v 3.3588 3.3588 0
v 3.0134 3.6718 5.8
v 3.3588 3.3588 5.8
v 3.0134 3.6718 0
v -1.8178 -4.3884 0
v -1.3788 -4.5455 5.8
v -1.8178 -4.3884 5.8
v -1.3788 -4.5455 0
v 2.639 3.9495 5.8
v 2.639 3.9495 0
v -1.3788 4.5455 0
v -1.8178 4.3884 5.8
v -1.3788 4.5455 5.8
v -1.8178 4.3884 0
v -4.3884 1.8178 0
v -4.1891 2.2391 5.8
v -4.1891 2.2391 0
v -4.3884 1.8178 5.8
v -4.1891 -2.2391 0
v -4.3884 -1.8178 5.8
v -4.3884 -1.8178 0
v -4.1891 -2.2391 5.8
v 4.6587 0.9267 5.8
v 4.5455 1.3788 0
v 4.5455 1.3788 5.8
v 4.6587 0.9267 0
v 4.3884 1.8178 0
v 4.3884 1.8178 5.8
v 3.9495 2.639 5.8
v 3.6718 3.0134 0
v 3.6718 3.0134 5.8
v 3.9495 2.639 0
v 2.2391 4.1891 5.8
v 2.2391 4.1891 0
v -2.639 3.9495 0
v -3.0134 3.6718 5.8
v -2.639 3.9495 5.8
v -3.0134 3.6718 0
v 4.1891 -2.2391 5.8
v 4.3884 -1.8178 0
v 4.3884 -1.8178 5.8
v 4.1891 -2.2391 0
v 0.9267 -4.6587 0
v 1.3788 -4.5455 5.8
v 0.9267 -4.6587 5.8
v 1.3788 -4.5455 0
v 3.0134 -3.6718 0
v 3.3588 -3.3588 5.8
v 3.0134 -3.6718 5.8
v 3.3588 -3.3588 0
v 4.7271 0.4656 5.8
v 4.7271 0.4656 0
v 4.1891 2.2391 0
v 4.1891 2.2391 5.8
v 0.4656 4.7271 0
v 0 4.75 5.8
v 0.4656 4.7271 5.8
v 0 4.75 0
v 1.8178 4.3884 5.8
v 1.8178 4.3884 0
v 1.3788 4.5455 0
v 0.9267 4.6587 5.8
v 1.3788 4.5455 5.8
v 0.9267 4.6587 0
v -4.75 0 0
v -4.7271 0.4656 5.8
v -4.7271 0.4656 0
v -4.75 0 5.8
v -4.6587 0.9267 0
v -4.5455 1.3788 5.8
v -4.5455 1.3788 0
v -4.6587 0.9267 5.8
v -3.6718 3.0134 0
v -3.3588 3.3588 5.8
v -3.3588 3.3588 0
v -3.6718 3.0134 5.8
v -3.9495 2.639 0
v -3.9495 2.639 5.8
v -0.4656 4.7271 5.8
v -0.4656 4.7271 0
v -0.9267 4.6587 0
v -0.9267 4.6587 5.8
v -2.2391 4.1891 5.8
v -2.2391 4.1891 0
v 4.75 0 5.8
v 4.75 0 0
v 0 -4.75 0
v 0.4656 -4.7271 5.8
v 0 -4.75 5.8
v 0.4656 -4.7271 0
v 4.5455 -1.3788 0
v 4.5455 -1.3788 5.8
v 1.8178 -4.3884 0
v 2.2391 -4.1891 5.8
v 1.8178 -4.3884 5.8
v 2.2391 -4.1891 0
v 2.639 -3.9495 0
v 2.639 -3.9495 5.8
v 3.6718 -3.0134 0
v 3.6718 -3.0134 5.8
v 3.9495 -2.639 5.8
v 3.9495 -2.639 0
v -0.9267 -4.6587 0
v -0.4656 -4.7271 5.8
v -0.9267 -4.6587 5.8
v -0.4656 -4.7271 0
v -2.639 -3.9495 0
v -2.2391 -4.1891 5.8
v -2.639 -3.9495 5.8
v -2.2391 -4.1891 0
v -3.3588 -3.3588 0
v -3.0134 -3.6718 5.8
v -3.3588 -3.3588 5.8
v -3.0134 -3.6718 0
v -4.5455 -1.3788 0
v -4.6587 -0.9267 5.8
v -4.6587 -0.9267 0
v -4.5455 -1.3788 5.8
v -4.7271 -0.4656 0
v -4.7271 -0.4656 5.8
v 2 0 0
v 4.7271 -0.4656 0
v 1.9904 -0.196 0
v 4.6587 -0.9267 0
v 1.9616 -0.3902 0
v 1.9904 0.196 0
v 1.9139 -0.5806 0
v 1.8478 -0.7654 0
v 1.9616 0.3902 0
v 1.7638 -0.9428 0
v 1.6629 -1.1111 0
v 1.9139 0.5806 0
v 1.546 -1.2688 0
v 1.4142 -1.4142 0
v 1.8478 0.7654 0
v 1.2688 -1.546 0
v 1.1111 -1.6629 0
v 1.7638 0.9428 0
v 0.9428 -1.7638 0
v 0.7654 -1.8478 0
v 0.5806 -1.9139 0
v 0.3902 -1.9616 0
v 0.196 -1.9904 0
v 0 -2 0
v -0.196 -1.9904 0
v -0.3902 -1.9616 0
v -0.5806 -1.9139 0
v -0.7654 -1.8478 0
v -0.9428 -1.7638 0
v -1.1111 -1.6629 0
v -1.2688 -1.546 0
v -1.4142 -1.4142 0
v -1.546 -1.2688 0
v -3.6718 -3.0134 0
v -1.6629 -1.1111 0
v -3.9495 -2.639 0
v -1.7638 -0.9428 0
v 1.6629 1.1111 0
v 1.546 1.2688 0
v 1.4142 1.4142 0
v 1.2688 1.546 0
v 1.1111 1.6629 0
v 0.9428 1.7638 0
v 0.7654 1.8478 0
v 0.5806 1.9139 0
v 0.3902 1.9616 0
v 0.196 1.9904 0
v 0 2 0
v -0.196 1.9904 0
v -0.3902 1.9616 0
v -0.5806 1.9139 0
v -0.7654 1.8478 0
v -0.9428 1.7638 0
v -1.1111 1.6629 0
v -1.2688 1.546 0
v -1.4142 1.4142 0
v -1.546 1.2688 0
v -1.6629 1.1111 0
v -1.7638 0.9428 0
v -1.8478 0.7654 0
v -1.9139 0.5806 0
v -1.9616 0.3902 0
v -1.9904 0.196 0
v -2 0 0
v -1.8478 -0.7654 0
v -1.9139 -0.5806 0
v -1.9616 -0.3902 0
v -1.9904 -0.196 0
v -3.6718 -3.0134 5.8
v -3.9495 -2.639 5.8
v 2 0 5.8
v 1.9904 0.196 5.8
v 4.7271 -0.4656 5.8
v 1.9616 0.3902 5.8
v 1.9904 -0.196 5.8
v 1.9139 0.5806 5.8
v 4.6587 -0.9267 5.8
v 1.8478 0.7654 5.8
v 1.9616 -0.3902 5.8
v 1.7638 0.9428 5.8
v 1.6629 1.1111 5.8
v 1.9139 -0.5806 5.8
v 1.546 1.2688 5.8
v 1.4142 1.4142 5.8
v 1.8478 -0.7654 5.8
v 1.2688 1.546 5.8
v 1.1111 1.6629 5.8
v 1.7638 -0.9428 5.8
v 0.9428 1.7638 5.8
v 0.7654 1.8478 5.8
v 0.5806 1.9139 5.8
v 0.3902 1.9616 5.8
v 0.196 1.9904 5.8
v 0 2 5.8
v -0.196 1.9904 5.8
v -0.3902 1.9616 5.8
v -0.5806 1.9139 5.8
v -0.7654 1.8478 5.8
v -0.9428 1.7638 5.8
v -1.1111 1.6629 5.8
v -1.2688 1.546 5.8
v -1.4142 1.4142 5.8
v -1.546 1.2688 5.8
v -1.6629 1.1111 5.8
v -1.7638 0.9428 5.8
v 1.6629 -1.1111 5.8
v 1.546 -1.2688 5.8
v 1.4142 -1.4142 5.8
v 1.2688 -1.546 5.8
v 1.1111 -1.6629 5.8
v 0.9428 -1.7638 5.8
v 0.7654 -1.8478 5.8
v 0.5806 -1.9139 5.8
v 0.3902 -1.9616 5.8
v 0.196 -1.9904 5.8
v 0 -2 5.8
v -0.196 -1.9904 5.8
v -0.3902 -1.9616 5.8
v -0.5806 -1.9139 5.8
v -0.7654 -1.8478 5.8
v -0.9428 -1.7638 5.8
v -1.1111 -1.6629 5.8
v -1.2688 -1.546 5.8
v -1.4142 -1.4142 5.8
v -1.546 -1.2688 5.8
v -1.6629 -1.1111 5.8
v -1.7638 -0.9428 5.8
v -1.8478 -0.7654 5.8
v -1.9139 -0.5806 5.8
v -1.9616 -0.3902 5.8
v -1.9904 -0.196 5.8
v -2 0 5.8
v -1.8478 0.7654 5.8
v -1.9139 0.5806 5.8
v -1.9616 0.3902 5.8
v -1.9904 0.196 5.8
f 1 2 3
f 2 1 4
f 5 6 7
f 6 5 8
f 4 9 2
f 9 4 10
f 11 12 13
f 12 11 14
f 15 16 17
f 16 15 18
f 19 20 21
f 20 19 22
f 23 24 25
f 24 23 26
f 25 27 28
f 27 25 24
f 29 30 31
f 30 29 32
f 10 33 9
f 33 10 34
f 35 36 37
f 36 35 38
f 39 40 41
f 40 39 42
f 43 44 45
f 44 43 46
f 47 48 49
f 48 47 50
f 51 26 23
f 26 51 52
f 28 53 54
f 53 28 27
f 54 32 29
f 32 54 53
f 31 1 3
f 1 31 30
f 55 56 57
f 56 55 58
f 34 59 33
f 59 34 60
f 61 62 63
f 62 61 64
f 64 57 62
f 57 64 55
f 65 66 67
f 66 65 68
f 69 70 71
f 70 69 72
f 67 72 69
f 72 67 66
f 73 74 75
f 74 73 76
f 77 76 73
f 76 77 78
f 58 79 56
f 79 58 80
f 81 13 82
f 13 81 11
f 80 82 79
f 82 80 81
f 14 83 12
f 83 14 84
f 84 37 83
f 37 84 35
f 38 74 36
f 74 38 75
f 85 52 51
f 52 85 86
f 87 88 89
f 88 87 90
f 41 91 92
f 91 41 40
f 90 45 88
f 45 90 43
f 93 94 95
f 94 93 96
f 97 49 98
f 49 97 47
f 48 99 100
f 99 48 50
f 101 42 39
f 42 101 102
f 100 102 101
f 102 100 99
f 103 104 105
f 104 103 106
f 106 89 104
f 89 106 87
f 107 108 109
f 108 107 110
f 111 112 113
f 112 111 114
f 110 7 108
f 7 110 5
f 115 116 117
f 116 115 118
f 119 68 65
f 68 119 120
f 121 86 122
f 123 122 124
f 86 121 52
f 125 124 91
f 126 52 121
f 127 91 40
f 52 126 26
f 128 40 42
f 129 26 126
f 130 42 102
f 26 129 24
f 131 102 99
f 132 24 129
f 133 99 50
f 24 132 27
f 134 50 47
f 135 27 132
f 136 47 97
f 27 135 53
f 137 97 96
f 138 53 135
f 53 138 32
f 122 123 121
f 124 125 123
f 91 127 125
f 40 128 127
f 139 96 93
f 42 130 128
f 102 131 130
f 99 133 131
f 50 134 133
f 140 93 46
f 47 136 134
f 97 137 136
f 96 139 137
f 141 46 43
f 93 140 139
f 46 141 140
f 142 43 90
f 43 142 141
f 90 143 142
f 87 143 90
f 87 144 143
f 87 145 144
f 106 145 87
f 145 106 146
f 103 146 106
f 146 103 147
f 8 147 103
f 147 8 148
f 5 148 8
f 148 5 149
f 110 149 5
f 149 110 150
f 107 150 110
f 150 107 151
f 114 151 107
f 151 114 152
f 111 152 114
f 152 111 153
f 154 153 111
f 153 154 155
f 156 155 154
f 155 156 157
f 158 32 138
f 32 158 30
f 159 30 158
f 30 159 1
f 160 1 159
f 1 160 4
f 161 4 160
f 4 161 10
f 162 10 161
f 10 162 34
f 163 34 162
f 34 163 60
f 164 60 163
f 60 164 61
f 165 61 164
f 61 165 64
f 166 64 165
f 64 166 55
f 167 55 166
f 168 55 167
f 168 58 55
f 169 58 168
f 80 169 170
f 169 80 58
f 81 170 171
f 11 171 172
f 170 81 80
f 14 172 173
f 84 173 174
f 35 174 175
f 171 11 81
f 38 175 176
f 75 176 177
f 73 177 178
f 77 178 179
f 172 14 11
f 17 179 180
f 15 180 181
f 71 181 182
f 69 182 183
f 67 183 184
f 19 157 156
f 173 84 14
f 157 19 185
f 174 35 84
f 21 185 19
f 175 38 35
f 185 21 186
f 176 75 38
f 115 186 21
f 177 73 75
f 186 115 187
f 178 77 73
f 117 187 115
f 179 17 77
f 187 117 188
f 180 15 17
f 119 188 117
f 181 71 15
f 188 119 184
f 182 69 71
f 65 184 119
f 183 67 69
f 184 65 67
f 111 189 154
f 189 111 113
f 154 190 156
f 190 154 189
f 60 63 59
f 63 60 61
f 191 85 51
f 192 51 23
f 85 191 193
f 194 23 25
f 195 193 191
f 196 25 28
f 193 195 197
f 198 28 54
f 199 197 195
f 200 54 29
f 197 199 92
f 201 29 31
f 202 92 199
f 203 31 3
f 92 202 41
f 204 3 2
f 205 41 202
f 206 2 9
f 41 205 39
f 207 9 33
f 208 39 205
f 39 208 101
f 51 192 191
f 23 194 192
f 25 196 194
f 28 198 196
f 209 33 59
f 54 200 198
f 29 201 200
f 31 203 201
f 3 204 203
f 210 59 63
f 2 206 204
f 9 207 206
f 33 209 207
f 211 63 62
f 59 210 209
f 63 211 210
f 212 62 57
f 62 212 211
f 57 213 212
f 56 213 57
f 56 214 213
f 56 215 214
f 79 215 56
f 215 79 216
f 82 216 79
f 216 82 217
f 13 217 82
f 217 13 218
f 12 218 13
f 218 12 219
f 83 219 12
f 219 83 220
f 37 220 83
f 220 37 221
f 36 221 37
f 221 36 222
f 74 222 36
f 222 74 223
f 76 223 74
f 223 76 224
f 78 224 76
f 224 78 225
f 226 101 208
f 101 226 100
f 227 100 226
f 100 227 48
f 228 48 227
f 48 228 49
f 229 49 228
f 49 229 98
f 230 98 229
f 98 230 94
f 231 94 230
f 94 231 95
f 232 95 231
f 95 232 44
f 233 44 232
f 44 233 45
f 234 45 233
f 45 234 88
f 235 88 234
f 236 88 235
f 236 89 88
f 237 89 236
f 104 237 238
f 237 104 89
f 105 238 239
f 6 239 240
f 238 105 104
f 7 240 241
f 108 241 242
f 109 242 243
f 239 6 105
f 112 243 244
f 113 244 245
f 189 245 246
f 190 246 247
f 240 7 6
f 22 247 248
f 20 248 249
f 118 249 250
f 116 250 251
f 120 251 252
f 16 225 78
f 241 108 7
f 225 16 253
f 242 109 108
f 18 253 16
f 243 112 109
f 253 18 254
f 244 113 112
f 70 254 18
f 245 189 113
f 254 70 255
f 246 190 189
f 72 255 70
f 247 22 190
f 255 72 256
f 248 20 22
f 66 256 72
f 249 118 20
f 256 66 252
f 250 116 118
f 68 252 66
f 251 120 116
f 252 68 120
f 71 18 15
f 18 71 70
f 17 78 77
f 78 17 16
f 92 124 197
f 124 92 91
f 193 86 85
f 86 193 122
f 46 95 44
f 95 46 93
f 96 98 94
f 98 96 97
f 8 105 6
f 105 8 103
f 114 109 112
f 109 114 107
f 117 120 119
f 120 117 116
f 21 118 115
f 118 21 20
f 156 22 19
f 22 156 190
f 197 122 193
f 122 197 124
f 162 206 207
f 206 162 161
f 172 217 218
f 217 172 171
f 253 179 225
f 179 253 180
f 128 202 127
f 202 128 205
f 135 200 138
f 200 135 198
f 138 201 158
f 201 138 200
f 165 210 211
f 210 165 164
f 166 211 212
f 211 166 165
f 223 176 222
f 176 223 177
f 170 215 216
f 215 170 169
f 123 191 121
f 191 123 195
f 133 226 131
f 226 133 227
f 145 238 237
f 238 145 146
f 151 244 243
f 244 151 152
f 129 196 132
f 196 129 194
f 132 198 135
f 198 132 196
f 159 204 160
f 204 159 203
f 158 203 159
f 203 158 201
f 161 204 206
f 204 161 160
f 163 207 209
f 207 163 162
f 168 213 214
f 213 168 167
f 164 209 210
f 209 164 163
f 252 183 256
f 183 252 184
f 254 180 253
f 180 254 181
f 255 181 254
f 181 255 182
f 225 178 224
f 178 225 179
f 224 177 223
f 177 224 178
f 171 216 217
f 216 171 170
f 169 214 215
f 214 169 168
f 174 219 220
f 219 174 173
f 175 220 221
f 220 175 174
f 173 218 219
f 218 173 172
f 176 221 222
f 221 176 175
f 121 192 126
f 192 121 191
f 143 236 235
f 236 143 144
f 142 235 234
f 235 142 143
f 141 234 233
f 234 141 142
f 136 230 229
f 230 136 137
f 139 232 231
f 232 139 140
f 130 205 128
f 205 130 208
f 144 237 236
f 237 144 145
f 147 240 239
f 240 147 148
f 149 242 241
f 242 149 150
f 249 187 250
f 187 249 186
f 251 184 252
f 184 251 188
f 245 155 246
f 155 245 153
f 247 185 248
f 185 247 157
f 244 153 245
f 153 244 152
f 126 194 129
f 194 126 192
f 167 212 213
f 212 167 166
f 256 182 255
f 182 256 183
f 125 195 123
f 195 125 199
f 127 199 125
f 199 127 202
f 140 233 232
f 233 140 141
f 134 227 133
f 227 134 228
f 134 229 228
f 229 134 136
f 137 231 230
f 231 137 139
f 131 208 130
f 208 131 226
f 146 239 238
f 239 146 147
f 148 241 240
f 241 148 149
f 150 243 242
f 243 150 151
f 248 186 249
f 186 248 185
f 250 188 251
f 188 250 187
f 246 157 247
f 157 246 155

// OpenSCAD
$fn = 64;

difference() {
    cylinder(d = 9.5, h = 5.8);
    cylinder(d = 4, h = 5.8);
}
